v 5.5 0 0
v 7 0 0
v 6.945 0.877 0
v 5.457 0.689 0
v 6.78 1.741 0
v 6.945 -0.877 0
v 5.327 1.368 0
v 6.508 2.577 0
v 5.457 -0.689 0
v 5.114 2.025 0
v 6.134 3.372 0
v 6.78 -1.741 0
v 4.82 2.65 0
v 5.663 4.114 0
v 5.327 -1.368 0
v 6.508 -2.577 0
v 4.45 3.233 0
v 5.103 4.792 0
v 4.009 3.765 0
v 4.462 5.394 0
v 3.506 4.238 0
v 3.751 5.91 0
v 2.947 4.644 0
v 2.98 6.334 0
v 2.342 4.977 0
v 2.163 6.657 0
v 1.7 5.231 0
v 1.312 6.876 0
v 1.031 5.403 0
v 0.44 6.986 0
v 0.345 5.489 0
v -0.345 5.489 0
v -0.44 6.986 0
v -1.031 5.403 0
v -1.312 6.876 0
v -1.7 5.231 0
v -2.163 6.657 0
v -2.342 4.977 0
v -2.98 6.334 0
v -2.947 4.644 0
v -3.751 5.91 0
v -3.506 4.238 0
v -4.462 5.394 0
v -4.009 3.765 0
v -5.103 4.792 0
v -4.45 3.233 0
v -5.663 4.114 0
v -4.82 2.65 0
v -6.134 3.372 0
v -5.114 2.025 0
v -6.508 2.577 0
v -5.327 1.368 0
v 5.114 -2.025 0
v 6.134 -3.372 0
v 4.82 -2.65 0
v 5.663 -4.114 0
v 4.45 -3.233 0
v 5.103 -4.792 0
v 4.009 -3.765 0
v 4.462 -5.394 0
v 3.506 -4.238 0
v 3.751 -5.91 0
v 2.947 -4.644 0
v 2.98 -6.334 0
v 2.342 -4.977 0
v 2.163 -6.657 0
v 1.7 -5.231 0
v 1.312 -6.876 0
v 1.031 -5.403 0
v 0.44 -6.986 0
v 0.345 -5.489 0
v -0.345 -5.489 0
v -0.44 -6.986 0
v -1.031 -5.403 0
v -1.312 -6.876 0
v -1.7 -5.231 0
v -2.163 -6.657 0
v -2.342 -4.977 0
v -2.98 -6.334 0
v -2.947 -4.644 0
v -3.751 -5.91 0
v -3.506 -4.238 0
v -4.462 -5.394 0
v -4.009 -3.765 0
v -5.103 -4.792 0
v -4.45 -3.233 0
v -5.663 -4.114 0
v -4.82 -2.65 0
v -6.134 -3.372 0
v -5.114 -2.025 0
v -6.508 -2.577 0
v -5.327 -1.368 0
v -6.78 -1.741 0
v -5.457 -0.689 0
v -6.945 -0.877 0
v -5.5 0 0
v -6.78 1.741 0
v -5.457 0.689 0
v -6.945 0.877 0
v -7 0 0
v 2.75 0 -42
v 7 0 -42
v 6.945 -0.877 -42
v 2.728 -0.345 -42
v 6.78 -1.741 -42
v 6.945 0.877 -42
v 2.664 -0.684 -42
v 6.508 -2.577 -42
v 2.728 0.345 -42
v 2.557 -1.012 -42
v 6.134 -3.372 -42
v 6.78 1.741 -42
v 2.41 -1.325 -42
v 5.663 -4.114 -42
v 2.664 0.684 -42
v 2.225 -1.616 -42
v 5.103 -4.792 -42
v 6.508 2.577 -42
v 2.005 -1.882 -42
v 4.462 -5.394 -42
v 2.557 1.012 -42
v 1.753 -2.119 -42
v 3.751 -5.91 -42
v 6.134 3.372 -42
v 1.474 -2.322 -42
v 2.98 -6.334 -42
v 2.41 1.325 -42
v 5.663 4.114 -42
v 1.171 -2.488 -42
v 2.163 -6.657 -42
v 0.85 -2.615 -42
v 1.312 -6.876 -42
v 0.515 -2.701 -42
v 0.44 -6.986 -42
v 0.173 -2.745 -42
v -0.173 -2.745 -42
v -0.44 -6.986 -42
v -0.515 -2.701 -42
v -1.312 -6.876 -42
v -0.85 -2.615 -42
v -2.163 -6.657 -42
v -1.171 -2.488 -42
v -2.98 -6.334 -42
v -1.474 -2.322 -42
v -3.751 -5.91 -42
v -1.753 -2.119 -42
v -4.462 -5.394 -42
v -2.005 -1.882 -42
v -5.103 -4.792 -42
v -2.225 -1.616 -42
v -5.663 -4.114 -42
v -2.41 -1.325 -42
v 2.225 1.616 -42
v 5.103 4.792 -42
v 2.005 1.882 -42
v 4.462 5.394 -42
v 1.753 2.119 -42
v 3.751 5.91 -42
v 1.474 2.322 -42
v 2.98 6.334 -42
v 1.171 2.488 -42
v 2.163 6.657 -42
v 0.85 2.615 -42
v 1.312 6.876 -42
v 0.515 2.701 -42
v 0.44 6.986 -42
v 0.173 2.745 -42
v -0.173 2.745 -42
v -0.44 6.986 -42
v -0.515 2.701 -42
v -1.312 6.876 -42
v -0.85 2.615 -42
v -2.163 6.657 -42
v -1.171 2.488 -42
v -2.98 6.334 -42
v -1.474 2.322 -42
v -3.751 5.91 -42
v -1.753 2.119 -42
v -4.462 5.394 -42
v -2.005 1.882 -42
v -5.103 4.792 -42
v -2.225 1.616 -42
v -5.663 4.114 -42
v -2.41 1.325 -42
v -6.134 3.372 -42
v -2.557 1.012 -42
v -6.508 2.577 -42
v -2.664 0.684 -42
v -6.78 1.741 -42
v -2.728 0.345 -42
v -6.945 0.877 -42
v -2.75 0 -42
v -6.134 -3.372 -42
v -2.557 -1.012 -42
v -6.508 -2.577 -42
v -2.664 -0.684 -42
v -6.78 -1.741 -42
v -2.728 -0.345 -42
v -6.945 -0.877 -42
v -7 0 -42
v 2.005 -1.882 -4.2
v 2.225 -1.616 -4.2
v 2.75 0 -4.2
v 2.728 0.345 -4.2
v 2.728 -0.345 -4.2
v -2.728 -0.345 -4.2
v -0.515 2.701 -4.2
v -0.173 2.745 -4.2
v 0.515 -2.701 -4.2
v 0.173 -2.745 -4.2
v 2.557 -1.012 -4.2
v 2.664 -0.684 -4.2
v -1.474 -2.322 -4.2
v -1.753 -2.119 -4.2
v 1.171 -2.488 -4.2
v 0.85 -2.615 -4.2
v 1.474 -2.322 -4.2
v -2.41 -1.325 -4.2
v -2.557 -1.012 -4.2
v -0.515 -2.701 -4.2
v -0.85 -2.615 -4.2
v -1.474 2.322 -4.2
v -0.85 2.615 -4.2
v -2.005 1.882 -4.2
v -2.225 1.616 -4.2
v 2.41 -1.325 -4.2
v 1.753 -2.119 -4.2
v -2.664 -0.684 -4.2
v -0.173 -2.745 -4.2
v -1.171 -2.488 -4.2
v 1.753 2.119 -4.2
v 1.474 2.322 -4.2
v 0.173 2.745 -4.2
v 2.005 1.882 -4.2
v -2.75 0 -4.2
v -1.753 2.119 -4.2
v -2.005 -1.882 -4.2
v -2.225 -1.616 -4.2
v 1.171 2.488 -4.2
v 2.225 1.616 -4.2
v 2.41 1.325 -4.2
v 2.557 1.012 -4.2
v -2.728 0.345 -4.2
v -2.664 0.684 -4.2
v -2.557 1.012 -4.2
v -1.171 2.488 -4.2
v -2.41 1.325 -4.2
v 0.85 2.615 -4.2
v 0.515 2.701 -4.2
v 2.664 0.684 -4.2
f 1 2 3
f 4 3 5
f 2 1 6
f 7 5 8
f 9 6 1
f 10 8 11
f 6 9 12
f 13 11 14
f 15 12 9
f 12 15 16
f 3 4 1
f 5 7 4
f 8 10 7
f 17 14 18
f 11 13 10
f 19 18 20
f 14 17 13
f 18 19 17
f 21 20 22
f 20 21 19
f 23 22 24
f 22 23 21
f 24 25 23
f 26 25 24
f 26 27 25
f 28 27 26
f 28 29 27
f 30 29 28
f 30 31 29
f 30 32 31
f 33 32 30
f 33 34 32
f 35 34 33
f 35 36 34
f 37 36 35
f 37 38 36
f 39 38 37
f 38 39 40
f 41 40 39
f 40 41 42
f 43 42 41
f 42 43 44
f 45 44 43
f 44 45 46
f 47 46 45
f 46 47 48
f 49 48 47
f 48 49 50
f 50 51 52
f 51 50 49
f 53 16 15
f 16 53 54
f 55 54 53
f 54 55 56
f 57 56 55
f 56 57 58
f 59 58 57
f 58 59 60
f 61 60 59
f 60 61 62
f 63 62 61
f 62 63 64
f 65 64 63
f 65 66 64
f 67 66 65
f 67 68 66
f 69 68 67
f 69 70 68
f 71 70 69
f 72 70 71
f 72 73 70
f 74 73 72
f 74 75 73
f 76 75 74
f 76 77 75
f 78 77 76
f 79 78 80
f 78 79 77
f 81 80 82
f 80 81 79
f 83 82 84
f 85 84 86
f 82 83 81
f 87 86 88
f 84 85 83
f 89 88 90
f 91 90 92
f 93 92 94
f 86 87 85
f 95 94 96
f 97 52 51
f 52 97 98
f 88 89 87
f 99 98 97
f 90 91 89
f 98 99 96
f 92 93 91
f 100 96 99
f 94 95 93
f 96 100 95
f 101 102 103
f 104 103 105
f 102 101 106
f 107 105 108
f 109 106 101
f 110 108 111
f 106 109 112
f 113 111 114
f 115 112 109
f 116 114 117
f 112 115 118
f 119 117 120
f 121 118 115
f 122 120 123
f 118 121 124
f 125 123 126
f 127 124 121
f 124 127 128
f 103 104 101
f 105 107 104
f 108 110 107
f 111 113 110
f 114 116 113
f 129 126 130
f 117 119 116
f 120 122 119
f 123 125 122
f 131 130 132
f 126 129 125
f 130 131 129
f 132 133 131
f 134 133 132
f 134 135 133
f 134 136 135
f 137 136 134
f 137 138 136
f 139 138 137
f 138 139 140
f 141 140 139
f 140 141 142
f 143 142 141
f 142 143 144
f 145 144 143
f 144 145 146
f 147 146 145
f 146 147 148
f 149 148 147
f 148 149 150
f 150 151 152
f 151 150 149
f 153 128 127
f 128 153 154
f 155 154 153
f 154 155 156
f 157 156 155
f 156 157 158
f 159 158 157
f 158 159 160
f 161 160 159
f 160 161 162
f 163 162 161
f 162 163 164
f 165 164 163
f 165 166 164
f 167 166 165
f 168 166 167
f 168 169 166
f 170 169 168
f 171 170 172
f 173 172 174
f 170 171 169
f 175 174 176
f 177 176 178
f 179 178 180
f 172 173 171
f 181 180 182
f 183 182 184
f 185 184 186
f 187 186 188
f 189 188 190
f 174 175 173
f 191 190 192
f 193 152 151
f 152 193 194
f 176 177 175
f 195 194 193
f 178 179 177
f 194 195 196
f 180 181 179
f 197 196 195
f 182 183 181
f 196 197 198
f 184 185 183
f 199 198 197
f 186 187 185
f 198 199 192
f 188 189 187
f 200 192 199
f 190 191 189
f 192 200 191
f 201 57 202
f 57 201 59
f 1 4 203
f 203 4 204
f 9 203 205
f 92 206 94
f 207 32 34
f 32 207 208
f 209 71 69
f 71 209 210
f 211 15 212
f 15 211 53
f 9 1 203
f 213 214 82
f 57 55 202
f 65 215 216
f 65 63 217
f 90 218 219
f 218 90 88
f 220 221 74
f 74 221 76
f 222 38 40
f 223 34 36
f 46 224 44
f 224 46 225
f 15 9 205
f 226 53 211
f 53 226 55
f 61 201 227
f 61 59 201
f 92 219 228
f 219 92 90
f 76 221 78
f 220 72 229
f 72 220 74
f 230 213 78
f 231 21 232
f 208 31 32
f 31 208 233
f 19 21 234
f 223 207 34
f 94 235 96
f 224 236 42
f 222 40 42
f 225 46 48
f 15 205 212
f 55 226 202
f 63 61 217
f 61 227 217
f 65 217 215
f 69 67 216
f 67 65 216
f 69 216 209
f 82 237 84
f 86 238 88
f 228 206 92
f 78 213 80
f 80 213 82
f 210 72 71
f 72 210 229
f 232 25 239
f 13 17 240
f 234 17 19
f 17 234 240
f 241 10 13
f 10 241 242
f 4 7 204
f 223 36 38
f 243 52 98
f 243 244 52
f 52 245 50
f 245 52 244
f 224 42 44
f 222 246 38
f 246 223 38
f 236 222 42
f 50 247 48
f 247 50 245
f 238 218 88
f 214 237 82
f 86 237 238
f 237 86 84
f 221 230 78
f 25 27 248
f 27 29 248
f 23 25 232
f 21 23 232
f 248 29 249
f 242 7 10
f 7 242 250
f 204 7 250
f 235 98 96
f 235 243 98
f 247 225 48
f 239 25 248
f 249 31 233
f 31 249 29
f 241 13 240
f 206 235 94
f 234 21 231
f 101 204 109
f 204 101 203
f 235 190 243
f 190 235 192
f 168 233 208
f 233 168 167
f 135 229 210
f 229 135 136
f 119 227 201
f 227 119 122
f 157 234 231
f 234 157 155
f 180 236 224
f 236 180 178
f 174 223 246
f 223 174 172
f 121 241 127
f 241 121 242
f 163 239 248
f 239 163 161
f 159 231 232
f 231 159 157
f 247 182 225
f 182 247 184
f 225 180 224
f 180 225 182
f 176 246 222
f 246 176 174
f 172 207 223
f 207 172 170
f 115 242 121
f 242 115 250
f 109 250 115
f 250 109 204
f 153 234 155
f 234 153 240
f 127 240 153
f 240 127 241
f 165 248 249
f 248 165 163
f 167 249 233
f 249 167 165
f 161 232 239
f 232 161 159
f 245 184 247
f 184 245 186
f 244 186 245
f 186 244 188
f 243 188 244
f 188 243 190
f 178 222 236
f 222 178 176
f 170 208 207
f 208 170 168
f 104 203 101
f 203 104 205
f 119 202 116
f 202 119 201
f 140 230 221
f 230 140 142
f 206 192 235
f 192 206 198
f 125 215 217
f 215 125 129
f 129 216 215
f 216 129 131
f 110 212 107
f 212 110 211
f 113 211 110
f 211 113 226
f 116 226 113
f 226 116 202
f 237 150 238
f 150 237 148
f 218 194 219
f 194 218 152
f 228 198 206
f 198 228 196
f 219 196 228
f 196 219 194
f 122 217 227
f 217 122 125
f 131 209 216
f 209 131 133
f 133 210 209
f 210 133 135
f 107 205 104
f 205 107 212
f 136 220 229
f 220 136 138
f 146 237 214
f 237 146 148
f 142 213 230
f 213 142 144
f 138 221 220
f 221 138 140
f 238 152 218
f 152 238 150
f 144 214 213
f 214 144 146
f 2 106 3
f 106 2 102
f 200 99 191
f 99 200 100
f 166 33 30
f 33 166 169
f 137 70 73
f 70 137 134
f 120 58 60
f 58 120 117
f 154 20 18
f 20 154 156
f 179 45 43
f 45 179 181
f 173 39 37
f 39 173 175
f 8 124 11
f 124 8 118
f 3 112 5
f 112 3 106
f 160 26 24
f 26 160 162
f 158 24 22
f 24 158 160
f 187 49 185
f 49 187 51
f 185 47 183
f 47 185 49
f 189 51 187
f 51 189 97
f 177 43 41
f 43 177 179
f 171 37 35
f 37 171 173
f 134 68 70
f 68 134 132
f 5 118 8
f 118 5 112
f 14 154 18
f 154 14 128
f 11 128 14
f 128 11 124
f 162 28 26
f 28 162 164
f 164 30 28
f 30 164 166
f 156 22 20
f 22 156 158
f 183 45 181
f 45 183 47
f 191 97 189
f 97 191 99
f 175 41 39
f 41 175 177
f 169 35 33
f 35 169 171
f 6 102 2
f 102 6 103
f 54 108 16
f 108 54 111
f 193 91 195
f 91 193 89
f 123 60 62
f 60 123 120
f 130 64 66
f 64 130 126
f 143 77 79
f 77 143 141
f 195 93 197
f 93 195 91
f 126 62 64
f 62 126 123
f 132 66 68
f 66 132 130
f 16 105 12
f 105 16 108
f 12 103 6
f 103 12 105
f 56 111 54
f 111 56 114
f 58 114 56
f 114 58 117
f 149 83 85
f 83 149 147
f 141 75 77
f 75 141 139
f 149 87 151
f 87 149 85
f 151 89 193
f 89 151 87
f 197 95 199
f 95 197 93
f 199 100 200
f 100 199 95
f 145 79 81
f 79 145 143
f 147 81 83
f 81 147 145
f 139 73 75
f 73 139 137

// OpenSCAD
$fn = 50;


difference() {
	union() {
		translate(v = [0, 0, -42.0000000000]) {
			cylinder(h = 42, r = 7.0000000000);
		}
	}
	union() {
		translate(v = [0, 0, 0]) {
			rotate(a = [0, 0, 0]) {
				difference() {
					union() {
						#translate(v = [0, 0, -42.0000000000]) {
							cylinder(h = 42, r = 2.2500000000);
						}
						#translate(v = [0, 0, -4.2000000000]) {
							cylinder(h = 4.2000000000, r = 7.0000000000, r1 = 2.7500000000, r2 = 5.5000000000);
						}
						#translate(v = [0, 0, -42.0000000000]) {
							cylinder(h = 42, r = 2.7500000000);
						}
						#translate(v = [0, 0, -42.0000000000]) {
							cylinder(h = 42, r = 2.2500000000);
						}
					}
					union();
				}
			}
		}
	}
}
